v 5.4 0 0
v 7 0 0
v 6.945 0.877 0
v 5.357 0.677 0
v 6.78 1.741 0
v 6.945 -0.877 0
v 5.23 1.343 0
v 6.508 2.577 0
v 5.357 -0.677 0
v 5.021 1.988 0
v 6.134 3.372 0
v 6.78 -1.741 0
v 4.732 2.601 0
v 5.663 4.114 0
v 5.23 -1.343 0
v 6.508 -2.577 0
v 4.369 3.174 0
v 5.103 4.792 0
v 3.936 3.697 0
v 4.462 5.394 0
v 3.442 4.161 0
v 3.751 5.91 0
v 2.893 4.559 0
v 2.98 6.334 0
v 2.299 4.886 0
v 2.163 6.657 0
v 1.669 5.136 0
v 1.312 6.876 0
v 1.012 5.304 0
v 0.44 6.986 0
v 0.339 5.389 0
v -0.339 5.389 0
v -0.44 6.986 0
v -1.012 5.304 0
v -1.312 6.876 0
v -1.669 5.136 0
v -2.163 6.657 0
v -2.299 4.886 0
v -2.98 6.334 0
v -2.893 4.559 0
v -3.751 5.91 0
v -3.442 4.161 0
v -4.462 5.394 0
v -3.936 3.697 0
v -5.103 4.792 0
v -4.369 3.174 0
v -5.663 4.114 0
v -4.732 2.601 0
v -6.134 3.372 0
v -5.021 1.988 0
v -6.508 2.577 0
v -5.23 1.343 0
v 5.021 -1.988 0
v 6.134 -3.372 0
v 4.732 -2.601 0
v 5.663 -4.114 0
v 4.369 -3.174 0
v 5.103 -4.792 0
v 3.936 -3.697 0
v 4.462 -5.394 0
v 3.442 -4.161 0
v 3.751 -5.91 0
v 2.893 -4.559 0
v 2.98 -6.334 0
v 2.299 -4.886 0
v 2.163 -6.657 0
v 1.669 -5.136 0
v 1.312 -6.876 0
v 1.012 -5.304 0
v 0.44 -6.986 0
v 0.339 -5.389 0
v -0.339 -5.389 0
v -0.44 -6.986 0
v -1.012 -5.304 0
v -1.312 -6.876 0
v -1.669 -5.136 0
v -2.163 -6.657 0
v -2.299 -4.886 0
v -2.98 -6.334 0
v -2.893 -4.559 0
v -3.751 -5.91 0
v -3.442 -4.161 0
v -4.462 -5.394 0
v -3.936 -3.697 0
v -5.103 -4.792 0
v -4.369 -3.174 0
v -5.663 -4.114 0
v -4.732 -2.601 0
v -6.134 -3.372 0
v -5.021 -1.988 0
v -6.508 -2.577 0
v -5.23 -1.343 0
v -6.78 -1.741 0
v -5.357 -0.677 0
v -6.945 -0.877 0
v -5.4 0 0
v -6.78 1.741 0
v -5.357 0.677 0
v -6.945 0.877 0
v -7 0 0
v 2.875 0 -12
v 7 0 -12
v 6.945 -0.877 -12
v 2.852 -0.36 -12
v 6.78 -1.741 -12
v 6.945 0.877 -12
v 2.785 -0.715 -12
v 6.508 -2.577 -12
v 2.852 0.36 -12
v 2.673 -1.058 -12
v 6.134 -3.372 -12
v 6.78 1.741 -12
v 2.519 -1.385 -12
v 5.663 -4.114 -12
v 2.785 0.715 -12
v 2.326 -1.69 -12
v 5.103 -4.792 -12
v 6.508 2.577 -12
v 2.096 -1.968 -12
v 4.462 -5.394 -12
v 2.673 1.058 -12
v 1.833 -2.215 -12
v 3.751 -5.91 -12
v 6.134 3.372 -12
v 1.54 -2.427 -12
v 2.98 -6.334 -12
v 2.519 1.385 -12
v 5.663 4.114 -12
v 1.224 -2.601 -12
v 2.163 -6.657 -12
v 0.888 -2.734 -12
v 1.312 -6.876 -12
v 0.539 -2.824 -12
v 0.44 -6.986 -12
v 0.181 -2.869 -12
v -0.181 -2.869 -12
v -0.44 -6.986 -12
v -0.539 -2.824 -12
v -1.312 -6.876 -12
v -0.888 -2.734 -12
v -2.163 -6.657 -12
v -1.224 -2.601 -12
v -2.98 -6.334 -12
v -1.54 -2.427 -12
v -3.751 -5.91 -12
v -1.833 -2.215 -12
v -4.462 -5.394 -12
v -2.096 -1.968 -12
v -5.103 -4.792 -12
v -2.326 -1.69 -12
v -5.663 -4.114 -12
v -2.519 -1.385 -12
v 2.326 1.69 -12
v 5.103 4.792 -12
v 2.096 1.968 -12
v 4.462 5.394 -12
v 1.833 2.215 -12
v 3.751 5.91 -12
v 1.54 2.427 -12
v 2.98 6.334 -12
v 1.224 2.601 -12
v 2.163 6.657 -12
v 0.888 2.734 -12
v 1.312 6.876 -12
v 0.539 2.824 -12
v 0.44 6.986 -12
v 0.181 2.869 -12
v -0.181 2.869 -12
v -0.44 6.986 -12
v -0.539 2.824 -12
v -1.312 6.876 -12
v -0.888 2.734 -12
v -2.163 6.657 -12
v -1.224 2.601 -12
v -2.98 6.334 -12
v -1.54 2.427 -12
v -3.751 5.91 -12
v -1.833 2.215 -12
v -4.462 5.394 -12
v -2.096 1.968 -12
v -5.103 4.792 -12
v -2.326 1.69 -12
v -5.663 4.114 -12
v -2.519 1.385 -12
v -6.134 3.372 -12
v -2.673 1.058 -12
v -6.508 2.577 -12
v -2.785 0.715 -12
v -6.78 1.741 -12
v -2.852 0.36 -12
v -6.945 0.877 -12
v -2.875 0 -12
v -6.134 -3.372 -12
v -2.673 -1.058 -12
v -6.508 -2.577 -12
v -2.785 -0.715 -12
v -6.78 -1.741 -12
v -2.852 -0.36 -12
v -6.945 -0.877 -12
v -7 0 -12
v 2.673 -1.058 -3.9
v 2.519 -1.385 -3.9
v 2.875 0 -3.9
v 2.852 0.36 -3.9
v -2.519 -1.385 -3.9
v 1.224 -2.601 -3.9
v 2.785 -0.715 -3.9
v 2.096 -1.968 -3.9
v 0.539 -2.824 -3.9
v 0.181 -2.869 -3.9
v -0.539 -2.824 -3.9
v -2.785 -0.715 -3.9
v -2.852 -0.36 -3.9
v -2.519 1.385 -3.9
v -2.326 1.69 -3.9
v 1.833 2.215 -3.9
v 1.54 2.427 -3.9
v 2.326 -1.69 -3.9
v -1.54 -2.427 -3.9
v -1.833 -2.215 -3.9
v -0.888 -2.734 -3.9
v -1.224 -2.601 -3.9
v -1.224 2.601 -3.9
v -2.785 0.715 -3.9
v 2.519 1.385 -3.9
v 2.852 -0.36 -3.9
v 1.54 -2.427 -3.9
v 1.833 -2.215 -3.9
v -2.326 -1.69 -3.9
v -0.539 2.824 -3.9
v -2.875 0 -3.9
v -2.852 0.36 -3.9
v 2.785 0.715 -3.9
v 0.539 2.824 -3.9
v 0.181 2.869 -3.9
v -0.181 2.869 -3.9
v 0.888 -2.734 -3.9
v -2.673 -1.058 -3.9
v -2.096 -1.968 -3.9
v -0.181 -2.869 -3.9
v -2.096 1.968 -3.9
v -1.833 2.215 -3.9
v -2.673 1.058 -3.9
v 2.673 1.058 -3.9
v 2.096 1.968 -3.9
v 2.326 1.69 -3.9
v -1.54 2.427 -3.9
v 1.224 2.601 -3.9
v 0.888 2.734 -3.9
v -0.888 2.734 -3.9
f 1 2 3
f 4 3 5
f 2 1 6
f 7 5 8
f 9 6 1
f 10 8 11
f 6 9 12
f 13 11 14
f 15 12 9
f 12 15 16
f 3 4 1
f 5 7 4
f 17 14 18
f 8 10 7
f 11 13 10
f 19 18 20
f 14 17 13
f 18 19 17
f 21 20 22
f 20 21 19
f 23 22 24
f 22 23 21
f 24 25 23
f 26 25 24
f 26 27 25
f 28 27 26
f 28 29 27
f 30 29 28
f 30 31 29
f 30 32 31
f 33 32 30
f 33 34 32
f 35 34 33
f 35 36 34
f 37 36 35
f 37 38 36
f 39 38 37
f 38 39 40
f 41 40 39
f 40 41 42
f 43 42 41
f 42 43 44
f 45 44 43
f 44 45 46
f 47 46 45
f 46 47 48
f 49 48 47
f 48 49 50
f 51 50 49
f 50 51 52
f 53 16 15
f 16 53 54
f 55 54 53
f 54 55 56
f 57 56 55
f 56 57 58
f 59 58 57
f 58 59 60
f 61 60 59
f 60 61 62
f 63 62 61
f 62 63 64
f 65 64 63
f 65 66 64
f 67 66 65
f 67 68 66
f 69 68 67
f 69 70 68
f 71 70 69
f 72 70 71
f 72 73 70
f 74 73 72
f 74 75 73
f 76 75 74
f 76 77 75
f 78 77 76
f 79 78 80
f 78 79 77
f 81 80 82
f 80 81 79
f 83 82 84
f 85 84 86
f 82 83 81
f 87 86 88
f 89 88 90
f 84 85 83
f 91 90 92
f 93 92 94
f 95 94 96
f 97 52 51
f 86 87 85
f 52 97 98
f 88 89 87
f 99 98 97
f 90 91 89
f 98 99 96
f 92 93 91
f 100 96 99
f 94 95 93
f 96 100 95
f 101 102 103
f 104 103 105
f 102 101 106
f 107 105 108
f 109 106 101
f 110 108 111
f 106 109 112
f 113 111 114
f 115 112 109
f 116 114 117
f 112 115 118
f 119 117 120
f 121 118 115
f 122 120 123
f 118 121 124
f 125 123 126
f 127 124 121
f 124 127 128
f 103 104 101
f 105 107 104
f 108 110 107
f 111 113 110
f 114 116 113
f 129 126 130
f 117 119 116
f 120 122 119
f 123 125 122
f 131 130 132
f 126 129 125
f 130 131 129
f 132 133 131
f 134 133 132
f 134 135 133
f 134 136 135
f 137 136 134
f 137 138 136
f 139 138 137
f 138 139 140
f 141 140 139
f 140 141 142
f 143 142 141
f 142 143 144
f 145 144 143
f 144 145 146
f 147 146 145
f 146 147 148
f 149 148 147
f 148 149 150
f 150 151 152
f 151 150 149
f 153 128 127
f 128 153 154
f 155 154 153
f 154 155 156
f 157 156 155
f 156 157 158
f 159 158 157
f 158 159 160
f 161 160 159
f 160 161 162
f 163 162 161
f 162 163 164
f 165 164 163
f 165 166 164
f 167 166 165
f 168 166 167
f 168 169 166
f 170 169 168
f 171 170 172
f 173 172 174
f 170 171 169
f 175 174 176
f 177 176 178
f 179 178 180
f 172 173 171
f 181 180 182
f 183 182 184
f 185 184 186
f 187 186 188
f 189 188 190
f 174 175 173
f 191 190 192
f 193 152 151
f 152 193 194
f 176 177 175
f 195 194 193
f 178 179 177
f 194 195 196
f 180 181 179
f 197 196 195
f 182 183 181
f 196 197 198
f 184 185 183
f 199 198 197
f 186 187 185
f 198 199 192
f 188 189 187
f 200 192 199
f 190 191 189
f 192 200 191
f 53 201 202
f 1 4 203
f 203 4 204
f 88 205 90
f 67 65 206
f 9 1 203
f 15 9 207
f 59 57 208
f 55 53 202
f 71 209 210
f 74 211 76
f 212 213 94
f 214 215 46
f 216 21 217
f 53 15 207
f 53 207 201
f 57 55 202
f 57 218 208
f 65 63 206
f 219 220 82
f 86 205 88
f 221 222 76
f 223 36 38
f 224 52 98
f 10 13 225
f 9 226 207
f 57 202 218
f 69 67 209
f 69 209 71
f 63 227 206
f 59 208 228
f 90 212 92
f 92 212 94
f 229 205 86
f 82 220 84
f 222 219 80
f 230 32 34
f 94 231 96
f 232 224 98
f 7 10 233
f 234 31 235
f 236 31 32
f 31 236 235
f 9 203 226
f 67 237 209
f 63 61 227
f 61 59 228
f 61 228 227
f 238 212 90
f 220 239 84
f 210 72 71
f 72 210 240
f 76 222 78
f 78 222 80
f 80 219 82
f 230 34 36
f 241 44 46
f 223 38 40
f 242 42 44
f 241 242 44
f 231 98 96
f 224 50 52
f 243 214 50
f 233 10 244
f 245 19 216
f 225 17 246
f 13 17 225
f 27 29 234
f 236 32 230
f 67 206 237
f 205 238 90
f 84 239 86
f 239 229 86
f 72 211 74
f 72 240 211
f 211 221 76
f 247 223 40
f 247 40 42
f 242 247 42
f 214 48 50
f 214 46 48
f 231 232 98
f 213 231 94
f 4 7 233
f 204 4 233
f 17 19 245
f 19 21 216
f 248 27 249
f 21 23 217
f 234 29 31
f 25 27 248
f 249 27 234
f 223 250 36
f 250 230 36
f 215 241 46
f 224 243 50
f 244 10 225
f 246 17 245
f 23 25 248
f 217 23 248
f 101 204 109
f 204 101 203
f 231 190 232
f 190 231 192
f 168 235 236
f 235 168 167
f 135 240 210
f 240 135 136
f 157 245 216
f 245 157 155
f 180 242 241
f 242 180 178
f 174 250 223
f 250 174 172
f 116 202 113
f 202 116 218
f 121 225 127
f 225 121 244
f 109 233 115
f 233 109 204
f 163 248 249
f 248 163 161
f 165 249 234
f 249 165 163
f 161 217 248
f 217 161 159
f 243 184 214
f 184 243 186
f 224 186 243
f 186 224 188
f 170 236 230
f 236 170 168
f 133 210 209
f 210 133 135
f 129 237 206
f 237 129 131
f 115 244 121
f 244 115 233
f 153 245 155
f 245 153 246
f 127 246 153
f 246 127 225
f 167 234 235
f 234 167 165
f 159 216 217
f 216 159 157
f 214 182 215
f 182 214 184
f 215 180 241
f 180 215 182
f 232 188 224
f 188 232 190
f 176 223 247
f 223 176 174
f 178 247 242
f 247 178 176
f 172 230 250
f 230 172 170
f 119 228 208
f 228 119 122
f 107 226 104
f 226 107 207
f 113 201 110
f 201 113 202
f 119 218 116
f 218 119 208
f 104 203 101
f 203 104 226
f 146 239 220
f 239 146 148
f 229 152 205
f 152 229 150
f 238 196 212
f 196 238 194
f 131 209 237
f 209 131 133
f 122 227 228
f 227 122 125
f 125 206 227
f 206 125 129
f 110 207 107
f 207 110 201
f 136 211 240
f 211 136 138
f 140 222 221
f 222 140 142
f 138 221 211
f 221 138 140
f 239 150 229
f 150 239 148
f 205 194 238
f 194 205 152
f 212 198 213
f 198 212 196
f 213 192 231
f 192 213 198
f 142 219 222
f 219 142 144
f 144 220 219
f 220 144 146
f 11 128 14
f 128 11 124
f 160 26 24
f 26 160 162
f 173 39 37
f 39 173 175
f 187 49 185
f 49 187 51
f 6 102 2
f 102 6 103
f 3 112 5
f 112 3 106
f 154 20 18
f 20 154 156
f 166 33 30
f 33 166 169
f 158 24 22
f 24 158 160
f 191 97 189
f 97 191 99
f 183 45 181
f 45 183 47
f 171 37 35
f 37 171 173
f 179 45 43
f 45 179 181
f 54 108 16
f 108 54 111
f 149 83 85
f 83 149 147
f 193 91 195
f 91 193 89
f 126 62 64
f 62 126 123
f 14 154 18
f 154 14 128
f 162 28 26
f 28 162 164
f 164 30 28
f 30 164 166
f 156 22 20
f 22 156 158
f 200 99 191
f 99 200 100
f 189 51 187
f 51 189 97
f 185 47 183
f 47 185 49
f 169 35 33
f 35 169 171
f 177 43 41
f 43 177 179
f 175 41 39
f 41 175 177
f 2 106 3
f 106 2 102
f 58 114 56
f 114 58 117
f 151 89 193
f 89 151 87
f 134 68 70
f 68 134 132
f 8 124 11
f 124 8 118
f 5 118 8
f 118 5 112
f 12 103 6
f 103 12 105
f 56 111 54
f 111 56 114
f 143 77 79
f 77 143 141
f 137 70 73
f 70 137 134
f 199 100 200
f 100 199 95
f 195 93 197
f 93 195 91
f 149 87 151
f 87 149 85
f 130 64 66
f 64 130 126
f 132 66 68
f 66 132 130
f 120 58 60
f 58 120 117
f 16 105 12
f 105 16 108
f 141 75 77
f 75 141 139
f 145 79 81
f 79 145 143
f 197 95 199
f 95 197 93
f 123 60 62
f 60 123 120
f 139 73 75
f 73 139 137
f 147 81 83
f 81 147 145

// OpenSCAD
$fn = 50;


difference() {
	union() {
		translate(v = [0, 0, -12.0000000000]) {
			cylinder(h = 12, r = 7.0000000000);
		}
		cylinder(h = 0, r = 13.0000000000);
	}
	union() {
		translate(v = [0, 0, 0]) {
			rotate(a = [0, 0, 0]) {
				difference() {
					union() {
						#translate(v = [0, 0, -12.0000000000]) {
							cylinder(h = 12, r = 2.6000000000);
						}
						#translate(v = [0, 0, -3.9000000000]) {
							cylinder(h = 3.9000000000, r1 = 2.8750000000, r2 = 5.4000000000);
						}
						#translate(v = [0, 0, -12.0000000000]) {
							cylinder(h = 12, r = 2.8750000000);
						}
						#translate(v = [0, 0, -12.0000000000]) {
							cylinder(h = 12, r = 2.6000000000);
						}
					}
					union();
				}
			}
		}
	}
}
